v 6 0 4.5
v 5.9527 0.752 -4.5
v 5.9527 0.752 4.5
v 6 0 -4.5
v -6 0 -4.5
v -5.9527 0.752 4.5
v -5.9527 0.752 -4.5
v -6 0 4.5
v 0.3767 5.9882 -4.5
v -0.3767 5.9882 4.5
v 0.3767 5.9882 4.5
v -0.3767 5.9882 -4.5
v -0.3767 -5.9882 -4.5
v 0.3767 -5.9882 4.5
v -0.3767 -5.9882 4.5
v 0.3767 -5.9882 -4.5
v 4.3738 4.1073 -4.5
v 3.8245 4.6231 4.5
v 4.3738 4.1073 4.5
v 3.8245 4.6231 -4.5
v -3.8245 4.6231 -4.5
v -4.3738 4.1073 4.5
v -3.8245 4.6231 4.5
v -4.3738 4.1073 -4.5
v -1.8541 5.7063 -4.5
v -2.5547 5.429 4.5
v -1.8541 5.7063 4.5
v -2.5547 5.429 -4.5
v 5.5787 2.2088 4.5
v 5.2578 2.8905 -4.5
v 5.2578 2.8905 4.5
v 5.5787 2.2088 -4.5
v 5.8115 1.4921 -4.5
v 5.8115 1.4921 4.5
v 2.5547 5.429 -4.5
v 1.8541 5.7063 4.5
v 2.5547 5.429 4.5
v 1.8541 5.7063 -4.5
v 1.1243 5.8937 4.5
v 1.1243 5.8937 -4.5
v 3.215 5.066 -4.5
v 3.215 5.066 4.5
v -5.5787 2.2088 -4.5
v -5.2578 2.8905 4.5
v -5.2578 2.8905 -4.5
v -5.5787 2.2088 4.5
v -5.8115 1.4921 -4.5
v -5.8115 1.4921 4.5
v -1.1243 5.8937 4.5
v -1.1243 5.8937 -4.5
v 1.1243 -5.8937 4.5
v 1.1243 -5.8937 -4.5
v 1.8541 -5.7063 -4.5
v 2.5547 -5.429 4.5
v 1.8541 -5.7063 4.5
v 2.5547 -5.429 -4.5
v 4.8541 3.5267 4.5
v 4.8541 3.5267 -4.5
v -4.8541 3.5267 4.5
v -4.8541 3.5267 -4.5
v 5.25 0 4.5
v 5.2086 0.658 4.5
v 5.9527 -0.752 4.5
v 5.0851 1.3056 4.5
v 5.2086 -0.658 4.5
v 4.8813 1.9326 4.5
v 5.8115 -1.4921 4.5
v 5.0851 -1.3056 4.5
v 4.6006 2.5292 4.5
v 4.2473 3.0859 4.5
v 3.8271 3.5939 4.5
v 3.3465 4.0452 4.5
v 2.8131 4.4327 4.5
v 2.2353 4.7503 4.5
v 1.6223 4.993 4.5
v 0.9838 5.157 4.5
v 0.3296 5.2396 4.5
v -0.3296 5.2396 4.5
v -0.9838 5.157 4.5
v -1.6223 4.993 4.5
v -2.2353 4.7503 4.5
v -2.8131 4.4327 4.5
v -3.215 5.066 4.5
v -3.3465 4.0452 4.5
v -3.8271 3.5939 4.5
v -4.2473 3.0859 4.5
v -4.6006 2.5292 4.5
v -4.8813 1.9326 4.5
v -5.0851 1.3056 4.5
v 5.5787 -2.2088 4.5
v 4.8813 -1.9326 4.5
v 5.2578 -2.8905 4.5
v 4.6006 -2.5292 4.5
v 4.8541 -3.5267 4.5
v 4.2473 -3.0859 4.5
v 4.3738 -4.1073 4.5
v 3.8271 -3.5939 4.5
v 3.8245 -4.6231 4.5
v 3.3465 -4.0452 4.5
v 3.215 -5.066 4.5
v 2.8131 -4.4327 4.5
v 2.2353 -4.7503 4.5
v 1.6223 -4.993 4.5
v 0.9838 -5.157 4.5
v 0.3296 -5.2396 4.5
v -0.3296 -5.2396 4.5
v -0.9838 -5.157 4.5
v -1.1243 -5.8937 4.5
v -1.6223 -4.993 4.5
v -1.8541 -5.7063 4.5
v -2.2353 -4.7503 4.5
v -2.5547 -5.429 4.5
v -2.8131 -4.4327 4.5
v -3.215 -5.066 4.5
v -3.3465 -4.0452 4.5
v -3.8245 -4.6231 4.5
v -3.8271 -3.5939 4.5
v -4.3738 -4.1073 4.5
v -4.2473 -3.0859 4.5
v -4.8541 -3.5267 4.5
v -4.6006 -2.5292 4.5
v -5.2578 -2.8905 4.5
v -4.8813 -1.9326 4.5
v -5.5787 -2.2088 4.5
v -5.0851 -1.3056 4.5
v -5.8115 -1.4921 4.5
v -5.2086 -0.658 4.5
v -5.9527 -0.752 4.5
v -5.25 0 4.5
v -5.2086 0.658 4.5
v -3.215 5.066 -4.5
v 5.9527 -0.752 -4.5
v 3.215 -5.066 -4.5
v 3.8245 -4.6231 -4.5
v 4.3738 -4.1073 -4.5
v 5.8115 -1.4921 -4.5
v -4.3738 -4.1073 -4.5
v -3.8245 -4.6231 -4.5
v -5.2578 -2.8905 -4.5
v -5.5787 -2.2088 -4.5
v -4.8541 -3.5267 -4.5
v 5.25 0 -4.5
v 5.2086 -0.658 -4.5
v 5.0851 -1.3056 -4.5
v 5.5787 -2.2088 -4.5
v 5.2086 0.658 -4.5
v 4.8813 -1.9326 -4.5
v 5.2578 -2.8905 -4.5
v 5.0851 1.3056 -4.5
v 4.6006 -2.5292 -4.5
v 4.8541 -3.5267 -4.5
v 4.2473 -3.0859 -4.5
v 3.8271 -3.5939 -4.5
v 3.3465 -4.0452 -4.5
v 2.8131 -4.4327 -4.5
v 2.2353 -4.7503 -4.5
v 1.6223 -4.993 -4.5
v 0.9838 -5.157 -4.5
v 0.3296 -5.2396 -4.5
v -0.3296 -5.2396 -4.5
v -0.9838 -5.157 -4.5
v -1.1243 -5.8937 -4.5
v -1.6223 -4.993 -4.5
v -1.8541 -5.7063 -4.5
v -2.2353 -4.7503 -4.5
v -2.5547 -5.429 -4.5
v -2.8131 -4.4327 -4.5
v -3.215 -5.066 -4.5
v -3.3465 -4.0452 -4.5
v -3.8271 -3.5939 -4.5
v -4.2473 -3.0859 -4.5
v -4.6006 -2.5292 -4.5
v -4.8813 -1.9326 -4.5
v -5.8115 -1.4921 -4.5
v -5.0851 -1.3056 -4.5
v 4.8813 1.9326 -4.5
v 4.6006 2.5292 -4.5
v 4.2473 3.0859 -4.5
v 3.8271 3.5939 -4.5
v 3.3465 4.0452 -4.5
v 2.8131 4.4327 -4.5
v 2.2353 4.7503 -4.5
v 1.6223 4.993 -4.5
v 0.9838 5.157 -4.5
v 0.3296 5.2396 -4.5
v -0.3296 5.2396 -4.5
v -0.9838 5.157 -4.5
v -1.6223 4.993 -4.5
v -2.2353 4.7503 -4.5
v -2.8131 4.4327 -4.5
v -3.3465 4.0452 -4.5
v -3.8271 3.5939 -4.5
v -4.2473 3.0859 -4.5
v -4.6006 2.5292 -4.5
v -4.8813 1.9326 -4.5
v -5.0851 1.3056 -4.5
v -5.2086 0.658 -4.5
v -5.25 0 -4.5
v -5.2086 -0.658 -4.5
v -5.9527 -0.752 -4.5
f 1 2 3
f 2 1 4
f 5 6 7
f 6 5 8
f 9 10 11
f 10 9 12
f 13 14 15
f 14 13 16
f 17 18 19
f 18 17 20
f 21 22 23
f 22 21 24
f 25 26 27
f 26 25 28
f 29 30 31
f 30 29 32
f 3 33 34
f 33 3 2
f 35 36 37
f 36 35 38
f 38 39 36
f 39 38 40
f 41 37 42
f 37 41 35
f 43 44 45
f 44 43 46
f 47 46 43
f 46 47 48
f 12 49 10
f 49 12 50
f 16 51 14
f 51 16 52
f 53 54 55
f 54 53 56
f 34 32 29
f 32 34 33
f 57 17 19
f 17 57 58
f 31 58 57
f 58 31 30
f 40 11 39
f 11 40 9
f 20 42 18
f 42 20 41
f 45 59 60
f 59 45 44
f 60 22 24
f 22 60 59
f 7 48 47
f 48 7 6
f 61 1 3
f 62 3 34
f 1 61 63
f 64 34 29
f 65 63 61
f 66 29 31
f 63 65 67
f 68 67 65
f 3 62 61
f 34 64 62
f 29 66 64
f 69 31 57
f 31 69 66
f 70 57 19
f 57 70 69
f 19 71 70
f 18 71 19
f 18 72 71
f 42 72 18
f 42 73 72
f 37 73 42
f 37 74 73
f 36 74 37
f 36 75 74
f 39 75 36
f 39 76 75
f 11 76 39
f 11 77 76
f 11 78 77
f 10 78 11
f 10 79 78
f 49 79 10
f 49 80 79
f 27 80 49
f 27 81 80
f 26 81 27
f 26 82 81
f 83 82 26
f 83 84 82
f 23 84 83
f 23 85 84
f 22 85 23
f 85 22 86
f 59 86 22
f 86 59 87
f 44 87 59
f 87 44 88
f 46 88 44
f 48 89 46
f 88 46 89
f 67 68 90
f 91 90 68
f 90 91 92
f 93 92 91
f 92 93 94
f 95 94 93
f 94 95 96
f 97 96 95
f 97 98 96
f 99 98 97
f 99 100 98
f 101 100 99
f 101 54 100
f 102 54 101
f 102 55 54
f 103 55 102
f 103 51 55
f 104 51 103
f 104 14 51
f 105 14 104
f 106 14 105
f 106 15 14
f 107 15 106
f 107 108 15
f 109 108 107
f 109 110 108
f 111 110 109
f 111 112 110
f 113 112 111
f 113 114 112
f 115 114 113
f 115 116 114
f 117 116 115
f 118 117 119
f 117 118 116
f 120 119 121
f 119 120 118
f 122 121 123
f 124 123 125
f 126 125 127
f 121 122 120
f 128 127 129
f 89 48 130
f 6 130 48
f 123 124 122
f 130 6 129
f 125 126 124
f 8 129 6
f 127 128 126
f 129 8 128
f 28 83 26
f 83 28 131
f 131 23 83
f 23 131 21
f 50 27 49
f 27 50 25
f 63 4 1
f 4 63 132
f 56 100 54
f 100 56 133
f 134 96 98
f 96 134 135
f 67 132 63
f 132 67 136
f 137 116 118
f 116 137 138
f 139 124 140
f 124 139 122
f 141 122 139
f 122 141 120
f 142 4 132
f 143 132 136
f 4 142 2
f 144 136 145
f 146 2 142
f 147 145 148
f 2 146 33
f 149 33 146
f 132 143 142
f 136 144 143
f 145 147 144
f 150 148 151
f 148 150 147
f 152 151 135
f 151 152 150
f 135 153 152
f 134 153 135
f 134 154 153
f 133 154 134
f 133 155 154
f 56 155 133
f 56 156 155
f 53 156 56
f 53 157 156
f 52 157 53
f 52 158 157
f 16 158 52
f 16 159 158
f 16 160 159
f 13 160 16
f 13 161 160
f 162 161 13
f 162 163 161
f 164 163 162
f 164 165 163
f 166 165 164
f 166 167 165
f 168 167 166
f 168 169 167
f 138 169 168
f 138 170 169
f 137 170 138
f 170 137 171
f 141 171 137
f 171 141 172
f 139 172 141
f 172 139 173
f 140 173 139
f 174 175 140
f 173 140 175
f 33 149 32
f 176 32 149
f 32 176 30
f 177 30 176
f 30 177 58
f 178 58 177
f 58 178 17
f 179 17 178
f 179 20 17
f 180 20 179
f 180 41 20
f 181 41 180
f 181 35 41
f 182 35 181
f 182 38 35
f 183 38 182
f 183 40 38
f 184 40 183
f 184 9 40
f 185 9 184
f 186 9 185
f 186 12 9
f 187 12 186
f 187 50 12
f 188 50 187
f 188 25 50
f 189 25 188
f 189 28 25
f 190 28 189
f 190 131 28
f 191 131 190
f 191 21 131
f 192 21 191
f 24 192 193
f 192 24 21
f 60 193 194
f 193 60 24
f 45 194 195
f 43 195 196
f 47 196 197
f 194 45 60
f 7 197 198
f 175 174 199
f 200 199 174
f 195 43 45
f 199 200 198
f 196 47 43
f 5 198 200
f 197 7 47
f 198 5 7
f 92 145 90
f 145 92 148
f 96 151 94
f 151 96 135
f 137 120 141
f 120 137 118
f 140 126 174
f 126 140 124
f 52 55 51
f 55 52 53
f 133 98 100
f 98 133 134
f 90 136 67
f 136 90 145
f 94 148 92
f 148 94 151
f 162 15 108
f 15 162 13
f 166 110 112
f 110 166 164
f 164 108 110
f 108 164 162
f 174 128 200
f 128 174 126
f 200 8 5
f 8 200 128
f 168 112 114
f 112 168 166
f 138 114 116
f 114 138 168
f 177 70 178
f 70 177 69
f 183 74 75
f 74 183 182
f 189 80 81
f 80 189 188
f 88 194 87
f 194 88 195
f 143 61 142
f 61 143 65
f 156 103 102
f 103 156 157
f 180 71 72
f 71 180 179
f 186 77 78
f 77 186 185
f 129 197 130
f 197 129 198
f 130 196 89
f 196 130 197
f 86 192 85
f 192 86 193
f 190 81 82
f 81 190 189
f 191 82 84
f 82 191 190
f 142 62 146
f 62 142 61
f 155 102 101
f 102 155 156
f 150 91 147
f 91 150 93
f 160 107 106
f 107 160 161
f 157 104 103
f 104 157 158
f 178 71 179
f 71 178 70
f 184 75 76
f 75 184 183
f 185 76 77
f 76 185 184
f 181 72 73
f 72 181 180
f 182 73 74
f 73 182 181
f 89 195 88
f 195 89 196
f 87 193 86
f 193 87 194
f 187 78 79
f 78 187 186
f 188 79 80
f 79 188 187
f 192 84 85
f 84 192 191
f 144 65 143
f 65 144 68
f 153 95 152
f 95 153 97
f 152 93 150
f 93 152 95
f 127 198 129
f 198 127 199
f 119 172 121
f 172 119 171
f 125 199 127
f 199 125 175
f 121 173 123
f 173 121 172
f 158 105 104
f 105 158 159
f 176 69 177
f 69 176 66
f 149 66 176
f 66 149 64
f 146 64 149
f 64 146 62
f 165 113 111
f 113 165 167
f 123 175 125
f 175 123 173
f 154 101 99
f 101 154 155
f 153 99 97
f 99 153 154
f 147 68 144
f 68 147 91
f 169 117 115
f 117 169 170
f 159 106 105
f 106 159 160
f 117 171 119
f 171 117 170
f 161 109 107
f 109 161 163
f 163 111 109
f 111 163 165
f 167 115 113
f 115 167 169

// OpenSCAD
$fn = 50;


difference() {
	union() {
		translate(v = [0, 0, -4.5000000000]) {
			cylinder(h = 9, r = 6.0000000000);
		}
	}
	union() {
		translate(v = [0, 0, -100.0000000000]) {
			cylinder(h = 200, r = 5.2500000000);
		}
	}
}
